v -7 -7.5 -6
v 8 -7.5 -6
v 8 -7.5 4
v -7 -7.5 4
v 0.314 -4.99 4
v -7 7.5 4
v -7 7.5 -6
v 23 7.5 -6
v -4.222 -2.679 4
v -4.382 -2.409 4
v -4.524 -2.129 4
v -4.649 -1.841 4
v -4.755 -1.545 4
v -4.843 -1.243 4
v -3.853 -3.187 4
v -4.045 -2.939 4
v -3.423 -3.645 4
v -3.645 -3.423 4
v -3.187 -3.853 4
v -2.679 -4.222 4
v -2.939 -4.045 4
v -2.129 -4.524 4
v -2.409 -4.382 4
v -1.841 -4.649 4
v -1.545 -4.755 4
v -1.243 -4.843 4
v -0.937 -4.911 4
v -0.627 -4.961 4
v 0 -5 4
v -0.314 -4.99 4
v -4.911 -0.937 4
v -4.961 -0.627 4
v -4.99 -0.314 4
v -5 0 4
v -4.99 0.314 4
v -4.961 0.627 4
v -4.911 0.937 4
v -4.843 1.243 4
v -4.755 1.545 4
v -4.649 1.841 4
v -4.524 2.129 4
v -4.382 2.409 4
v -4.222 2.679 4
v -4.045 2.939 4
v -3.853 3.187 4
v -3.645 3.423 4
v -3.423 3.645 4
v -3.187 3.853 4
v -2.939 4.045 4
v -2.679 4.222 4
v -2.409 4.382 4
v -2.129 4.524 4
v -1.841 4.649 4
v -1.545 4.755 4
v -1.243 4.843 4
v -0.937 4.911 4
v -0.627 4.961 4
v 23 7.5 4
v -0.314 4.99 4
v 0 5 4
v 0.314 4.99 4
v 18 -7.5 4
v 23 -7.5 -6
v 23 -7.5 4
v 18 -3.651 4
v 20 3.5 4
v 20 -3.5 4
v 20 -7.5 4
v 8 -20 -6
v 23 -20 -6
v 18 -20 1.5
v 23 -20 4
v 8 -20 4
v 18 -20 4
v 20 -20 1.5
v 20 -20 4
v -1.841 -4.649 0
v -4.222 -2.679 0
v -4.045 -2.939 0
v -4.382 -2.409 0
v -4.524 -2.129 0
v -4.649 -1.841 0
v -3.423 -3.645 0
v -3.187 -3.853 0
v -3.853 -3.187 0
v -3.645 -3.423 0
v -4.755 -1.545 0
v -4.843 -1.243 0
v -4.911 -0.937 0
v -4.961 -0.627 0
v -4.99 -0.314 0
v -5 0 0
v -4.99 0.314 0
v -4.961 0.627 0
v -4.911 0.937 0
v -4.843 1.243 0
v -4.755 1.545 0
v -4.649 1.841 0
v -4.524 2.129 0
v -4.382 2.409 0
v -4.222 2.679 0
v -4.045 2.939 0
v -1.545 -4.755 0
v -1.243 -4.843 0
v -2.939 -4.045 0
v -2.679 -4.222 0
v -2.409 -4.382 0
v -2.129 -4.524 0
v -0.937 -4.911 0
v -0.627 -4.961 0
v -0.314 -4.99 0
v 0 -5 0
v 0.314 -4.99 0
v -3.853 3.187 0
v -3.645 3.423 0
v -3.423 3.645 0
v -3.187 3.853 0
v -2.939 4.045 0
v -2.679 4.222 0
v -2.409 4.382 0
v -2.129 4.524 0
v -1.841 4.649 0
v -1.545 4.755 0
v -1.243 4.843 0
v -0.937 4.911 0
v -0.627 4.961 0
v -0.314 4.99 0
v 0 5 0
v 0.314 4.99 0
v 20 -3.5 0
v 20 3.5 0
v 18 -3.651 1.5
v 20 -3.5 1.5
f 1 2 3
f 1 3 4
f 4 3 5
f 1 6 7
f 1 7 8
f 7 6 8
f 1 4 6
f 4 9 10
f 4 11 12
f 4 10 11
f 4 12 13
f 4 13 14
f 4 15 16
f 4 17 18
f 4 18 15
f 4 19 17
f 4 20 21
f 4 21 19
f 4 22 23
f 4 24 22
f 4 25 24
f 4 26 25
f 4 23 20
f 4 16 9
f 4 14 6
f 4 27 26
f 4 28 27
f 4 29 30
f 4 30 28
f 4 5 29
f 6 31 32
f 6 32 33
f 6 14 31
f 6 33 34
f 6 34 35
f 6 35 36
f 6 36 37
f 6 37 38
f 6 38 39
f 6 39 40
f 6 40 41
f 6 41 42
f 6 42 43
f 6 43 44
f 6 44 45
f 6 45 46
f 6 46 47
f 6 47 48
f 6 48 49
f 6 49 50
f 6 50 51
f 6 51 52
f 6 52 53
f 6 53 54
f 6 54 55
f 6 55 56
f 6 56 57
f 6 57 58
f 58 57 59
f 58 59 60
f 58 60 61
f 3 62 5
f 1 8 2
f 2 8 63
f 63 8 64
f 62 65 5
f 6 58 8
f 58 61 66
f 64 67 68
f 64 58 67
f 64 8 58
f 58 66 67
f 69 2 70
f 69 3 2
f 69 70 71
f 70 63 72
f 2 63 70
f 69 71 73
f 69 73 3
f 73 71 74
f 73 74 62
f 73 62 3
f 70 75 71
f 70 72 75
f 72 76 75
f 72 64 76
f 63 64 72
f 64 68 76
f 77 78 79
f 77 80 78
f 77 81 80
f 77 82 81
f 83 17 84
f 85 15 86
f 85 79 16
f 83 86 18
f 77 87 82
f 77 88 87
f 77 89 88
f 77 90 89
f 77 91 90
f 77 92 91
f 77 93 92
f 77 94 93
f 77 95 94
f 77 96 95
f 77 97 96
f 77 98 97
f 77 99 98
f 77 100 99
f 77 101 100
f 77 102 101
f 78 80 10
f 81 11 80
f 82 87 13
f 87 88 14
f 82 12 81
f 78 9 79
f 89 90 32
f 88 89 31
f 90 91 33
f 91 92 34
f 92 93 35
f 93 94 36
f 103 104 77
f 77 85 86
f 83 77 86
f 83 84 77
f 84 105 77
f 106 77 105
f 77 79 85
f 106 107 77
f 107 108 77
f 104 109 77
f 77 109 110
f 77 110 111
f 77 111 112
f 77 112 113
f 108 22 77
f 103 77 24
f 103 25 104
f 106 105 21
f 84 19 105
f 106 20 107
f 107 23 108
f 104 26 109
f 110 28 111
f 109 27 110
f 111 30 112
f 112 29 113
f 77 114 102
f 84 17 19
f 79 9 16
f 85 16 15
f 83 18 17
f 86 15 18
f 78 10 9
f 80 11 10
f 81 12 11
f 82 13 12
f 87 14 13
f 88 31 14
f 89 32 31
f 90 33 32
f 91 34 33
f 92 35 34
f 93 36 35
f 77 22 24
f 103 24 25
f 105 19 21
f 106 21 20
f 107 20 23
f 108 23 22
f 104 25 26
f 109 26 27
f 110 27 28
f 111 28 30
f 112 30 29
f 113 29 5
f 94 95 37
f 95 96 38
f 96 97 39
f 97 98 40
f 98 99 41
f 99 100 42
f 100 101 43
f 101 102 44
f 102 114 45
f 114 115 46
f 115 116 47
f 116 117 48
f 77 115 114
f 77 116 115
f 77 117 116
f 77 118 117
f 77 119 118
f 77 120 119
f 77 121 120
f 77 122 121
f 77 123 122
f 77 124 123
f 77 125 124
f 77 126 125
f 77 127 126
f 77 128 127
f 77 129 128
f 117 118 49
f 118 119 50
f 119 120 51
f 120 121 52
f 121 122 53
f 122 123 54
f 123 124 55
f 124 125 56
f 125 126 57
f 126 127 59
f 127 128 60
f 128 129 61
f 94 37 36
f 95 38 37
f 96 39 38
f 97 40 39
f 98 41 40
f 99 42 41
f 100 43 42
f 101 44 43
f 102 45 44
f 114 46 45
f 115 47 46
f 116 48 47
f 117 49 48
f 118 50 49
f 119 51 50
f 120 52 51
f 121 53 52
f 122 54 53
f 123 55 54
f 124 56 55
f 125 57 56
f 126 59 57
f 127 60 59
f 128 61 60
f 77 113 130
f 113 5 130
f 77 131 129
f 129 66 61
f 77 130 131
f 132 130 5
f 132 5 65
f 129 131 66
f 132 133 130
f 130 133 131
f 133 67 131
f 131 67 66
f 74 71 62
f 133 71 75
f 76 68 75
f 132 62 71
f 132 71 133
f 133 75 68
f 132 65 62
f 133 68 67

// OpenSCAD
$fn = 100;


difference(){
union(){
translate([-7,-7.5,-6]){
cube([30,15,10]);
}
translate([8,-20,-6]){
cube([15,15,10]);
}
}
hull(){
cylinder(h=5,d=10);
translate([10,-3.5,0]){
    cube([10,7,5]);
}
}

translate([18,-29.5,1.5]){
cube([2,30,5]);
}
}
